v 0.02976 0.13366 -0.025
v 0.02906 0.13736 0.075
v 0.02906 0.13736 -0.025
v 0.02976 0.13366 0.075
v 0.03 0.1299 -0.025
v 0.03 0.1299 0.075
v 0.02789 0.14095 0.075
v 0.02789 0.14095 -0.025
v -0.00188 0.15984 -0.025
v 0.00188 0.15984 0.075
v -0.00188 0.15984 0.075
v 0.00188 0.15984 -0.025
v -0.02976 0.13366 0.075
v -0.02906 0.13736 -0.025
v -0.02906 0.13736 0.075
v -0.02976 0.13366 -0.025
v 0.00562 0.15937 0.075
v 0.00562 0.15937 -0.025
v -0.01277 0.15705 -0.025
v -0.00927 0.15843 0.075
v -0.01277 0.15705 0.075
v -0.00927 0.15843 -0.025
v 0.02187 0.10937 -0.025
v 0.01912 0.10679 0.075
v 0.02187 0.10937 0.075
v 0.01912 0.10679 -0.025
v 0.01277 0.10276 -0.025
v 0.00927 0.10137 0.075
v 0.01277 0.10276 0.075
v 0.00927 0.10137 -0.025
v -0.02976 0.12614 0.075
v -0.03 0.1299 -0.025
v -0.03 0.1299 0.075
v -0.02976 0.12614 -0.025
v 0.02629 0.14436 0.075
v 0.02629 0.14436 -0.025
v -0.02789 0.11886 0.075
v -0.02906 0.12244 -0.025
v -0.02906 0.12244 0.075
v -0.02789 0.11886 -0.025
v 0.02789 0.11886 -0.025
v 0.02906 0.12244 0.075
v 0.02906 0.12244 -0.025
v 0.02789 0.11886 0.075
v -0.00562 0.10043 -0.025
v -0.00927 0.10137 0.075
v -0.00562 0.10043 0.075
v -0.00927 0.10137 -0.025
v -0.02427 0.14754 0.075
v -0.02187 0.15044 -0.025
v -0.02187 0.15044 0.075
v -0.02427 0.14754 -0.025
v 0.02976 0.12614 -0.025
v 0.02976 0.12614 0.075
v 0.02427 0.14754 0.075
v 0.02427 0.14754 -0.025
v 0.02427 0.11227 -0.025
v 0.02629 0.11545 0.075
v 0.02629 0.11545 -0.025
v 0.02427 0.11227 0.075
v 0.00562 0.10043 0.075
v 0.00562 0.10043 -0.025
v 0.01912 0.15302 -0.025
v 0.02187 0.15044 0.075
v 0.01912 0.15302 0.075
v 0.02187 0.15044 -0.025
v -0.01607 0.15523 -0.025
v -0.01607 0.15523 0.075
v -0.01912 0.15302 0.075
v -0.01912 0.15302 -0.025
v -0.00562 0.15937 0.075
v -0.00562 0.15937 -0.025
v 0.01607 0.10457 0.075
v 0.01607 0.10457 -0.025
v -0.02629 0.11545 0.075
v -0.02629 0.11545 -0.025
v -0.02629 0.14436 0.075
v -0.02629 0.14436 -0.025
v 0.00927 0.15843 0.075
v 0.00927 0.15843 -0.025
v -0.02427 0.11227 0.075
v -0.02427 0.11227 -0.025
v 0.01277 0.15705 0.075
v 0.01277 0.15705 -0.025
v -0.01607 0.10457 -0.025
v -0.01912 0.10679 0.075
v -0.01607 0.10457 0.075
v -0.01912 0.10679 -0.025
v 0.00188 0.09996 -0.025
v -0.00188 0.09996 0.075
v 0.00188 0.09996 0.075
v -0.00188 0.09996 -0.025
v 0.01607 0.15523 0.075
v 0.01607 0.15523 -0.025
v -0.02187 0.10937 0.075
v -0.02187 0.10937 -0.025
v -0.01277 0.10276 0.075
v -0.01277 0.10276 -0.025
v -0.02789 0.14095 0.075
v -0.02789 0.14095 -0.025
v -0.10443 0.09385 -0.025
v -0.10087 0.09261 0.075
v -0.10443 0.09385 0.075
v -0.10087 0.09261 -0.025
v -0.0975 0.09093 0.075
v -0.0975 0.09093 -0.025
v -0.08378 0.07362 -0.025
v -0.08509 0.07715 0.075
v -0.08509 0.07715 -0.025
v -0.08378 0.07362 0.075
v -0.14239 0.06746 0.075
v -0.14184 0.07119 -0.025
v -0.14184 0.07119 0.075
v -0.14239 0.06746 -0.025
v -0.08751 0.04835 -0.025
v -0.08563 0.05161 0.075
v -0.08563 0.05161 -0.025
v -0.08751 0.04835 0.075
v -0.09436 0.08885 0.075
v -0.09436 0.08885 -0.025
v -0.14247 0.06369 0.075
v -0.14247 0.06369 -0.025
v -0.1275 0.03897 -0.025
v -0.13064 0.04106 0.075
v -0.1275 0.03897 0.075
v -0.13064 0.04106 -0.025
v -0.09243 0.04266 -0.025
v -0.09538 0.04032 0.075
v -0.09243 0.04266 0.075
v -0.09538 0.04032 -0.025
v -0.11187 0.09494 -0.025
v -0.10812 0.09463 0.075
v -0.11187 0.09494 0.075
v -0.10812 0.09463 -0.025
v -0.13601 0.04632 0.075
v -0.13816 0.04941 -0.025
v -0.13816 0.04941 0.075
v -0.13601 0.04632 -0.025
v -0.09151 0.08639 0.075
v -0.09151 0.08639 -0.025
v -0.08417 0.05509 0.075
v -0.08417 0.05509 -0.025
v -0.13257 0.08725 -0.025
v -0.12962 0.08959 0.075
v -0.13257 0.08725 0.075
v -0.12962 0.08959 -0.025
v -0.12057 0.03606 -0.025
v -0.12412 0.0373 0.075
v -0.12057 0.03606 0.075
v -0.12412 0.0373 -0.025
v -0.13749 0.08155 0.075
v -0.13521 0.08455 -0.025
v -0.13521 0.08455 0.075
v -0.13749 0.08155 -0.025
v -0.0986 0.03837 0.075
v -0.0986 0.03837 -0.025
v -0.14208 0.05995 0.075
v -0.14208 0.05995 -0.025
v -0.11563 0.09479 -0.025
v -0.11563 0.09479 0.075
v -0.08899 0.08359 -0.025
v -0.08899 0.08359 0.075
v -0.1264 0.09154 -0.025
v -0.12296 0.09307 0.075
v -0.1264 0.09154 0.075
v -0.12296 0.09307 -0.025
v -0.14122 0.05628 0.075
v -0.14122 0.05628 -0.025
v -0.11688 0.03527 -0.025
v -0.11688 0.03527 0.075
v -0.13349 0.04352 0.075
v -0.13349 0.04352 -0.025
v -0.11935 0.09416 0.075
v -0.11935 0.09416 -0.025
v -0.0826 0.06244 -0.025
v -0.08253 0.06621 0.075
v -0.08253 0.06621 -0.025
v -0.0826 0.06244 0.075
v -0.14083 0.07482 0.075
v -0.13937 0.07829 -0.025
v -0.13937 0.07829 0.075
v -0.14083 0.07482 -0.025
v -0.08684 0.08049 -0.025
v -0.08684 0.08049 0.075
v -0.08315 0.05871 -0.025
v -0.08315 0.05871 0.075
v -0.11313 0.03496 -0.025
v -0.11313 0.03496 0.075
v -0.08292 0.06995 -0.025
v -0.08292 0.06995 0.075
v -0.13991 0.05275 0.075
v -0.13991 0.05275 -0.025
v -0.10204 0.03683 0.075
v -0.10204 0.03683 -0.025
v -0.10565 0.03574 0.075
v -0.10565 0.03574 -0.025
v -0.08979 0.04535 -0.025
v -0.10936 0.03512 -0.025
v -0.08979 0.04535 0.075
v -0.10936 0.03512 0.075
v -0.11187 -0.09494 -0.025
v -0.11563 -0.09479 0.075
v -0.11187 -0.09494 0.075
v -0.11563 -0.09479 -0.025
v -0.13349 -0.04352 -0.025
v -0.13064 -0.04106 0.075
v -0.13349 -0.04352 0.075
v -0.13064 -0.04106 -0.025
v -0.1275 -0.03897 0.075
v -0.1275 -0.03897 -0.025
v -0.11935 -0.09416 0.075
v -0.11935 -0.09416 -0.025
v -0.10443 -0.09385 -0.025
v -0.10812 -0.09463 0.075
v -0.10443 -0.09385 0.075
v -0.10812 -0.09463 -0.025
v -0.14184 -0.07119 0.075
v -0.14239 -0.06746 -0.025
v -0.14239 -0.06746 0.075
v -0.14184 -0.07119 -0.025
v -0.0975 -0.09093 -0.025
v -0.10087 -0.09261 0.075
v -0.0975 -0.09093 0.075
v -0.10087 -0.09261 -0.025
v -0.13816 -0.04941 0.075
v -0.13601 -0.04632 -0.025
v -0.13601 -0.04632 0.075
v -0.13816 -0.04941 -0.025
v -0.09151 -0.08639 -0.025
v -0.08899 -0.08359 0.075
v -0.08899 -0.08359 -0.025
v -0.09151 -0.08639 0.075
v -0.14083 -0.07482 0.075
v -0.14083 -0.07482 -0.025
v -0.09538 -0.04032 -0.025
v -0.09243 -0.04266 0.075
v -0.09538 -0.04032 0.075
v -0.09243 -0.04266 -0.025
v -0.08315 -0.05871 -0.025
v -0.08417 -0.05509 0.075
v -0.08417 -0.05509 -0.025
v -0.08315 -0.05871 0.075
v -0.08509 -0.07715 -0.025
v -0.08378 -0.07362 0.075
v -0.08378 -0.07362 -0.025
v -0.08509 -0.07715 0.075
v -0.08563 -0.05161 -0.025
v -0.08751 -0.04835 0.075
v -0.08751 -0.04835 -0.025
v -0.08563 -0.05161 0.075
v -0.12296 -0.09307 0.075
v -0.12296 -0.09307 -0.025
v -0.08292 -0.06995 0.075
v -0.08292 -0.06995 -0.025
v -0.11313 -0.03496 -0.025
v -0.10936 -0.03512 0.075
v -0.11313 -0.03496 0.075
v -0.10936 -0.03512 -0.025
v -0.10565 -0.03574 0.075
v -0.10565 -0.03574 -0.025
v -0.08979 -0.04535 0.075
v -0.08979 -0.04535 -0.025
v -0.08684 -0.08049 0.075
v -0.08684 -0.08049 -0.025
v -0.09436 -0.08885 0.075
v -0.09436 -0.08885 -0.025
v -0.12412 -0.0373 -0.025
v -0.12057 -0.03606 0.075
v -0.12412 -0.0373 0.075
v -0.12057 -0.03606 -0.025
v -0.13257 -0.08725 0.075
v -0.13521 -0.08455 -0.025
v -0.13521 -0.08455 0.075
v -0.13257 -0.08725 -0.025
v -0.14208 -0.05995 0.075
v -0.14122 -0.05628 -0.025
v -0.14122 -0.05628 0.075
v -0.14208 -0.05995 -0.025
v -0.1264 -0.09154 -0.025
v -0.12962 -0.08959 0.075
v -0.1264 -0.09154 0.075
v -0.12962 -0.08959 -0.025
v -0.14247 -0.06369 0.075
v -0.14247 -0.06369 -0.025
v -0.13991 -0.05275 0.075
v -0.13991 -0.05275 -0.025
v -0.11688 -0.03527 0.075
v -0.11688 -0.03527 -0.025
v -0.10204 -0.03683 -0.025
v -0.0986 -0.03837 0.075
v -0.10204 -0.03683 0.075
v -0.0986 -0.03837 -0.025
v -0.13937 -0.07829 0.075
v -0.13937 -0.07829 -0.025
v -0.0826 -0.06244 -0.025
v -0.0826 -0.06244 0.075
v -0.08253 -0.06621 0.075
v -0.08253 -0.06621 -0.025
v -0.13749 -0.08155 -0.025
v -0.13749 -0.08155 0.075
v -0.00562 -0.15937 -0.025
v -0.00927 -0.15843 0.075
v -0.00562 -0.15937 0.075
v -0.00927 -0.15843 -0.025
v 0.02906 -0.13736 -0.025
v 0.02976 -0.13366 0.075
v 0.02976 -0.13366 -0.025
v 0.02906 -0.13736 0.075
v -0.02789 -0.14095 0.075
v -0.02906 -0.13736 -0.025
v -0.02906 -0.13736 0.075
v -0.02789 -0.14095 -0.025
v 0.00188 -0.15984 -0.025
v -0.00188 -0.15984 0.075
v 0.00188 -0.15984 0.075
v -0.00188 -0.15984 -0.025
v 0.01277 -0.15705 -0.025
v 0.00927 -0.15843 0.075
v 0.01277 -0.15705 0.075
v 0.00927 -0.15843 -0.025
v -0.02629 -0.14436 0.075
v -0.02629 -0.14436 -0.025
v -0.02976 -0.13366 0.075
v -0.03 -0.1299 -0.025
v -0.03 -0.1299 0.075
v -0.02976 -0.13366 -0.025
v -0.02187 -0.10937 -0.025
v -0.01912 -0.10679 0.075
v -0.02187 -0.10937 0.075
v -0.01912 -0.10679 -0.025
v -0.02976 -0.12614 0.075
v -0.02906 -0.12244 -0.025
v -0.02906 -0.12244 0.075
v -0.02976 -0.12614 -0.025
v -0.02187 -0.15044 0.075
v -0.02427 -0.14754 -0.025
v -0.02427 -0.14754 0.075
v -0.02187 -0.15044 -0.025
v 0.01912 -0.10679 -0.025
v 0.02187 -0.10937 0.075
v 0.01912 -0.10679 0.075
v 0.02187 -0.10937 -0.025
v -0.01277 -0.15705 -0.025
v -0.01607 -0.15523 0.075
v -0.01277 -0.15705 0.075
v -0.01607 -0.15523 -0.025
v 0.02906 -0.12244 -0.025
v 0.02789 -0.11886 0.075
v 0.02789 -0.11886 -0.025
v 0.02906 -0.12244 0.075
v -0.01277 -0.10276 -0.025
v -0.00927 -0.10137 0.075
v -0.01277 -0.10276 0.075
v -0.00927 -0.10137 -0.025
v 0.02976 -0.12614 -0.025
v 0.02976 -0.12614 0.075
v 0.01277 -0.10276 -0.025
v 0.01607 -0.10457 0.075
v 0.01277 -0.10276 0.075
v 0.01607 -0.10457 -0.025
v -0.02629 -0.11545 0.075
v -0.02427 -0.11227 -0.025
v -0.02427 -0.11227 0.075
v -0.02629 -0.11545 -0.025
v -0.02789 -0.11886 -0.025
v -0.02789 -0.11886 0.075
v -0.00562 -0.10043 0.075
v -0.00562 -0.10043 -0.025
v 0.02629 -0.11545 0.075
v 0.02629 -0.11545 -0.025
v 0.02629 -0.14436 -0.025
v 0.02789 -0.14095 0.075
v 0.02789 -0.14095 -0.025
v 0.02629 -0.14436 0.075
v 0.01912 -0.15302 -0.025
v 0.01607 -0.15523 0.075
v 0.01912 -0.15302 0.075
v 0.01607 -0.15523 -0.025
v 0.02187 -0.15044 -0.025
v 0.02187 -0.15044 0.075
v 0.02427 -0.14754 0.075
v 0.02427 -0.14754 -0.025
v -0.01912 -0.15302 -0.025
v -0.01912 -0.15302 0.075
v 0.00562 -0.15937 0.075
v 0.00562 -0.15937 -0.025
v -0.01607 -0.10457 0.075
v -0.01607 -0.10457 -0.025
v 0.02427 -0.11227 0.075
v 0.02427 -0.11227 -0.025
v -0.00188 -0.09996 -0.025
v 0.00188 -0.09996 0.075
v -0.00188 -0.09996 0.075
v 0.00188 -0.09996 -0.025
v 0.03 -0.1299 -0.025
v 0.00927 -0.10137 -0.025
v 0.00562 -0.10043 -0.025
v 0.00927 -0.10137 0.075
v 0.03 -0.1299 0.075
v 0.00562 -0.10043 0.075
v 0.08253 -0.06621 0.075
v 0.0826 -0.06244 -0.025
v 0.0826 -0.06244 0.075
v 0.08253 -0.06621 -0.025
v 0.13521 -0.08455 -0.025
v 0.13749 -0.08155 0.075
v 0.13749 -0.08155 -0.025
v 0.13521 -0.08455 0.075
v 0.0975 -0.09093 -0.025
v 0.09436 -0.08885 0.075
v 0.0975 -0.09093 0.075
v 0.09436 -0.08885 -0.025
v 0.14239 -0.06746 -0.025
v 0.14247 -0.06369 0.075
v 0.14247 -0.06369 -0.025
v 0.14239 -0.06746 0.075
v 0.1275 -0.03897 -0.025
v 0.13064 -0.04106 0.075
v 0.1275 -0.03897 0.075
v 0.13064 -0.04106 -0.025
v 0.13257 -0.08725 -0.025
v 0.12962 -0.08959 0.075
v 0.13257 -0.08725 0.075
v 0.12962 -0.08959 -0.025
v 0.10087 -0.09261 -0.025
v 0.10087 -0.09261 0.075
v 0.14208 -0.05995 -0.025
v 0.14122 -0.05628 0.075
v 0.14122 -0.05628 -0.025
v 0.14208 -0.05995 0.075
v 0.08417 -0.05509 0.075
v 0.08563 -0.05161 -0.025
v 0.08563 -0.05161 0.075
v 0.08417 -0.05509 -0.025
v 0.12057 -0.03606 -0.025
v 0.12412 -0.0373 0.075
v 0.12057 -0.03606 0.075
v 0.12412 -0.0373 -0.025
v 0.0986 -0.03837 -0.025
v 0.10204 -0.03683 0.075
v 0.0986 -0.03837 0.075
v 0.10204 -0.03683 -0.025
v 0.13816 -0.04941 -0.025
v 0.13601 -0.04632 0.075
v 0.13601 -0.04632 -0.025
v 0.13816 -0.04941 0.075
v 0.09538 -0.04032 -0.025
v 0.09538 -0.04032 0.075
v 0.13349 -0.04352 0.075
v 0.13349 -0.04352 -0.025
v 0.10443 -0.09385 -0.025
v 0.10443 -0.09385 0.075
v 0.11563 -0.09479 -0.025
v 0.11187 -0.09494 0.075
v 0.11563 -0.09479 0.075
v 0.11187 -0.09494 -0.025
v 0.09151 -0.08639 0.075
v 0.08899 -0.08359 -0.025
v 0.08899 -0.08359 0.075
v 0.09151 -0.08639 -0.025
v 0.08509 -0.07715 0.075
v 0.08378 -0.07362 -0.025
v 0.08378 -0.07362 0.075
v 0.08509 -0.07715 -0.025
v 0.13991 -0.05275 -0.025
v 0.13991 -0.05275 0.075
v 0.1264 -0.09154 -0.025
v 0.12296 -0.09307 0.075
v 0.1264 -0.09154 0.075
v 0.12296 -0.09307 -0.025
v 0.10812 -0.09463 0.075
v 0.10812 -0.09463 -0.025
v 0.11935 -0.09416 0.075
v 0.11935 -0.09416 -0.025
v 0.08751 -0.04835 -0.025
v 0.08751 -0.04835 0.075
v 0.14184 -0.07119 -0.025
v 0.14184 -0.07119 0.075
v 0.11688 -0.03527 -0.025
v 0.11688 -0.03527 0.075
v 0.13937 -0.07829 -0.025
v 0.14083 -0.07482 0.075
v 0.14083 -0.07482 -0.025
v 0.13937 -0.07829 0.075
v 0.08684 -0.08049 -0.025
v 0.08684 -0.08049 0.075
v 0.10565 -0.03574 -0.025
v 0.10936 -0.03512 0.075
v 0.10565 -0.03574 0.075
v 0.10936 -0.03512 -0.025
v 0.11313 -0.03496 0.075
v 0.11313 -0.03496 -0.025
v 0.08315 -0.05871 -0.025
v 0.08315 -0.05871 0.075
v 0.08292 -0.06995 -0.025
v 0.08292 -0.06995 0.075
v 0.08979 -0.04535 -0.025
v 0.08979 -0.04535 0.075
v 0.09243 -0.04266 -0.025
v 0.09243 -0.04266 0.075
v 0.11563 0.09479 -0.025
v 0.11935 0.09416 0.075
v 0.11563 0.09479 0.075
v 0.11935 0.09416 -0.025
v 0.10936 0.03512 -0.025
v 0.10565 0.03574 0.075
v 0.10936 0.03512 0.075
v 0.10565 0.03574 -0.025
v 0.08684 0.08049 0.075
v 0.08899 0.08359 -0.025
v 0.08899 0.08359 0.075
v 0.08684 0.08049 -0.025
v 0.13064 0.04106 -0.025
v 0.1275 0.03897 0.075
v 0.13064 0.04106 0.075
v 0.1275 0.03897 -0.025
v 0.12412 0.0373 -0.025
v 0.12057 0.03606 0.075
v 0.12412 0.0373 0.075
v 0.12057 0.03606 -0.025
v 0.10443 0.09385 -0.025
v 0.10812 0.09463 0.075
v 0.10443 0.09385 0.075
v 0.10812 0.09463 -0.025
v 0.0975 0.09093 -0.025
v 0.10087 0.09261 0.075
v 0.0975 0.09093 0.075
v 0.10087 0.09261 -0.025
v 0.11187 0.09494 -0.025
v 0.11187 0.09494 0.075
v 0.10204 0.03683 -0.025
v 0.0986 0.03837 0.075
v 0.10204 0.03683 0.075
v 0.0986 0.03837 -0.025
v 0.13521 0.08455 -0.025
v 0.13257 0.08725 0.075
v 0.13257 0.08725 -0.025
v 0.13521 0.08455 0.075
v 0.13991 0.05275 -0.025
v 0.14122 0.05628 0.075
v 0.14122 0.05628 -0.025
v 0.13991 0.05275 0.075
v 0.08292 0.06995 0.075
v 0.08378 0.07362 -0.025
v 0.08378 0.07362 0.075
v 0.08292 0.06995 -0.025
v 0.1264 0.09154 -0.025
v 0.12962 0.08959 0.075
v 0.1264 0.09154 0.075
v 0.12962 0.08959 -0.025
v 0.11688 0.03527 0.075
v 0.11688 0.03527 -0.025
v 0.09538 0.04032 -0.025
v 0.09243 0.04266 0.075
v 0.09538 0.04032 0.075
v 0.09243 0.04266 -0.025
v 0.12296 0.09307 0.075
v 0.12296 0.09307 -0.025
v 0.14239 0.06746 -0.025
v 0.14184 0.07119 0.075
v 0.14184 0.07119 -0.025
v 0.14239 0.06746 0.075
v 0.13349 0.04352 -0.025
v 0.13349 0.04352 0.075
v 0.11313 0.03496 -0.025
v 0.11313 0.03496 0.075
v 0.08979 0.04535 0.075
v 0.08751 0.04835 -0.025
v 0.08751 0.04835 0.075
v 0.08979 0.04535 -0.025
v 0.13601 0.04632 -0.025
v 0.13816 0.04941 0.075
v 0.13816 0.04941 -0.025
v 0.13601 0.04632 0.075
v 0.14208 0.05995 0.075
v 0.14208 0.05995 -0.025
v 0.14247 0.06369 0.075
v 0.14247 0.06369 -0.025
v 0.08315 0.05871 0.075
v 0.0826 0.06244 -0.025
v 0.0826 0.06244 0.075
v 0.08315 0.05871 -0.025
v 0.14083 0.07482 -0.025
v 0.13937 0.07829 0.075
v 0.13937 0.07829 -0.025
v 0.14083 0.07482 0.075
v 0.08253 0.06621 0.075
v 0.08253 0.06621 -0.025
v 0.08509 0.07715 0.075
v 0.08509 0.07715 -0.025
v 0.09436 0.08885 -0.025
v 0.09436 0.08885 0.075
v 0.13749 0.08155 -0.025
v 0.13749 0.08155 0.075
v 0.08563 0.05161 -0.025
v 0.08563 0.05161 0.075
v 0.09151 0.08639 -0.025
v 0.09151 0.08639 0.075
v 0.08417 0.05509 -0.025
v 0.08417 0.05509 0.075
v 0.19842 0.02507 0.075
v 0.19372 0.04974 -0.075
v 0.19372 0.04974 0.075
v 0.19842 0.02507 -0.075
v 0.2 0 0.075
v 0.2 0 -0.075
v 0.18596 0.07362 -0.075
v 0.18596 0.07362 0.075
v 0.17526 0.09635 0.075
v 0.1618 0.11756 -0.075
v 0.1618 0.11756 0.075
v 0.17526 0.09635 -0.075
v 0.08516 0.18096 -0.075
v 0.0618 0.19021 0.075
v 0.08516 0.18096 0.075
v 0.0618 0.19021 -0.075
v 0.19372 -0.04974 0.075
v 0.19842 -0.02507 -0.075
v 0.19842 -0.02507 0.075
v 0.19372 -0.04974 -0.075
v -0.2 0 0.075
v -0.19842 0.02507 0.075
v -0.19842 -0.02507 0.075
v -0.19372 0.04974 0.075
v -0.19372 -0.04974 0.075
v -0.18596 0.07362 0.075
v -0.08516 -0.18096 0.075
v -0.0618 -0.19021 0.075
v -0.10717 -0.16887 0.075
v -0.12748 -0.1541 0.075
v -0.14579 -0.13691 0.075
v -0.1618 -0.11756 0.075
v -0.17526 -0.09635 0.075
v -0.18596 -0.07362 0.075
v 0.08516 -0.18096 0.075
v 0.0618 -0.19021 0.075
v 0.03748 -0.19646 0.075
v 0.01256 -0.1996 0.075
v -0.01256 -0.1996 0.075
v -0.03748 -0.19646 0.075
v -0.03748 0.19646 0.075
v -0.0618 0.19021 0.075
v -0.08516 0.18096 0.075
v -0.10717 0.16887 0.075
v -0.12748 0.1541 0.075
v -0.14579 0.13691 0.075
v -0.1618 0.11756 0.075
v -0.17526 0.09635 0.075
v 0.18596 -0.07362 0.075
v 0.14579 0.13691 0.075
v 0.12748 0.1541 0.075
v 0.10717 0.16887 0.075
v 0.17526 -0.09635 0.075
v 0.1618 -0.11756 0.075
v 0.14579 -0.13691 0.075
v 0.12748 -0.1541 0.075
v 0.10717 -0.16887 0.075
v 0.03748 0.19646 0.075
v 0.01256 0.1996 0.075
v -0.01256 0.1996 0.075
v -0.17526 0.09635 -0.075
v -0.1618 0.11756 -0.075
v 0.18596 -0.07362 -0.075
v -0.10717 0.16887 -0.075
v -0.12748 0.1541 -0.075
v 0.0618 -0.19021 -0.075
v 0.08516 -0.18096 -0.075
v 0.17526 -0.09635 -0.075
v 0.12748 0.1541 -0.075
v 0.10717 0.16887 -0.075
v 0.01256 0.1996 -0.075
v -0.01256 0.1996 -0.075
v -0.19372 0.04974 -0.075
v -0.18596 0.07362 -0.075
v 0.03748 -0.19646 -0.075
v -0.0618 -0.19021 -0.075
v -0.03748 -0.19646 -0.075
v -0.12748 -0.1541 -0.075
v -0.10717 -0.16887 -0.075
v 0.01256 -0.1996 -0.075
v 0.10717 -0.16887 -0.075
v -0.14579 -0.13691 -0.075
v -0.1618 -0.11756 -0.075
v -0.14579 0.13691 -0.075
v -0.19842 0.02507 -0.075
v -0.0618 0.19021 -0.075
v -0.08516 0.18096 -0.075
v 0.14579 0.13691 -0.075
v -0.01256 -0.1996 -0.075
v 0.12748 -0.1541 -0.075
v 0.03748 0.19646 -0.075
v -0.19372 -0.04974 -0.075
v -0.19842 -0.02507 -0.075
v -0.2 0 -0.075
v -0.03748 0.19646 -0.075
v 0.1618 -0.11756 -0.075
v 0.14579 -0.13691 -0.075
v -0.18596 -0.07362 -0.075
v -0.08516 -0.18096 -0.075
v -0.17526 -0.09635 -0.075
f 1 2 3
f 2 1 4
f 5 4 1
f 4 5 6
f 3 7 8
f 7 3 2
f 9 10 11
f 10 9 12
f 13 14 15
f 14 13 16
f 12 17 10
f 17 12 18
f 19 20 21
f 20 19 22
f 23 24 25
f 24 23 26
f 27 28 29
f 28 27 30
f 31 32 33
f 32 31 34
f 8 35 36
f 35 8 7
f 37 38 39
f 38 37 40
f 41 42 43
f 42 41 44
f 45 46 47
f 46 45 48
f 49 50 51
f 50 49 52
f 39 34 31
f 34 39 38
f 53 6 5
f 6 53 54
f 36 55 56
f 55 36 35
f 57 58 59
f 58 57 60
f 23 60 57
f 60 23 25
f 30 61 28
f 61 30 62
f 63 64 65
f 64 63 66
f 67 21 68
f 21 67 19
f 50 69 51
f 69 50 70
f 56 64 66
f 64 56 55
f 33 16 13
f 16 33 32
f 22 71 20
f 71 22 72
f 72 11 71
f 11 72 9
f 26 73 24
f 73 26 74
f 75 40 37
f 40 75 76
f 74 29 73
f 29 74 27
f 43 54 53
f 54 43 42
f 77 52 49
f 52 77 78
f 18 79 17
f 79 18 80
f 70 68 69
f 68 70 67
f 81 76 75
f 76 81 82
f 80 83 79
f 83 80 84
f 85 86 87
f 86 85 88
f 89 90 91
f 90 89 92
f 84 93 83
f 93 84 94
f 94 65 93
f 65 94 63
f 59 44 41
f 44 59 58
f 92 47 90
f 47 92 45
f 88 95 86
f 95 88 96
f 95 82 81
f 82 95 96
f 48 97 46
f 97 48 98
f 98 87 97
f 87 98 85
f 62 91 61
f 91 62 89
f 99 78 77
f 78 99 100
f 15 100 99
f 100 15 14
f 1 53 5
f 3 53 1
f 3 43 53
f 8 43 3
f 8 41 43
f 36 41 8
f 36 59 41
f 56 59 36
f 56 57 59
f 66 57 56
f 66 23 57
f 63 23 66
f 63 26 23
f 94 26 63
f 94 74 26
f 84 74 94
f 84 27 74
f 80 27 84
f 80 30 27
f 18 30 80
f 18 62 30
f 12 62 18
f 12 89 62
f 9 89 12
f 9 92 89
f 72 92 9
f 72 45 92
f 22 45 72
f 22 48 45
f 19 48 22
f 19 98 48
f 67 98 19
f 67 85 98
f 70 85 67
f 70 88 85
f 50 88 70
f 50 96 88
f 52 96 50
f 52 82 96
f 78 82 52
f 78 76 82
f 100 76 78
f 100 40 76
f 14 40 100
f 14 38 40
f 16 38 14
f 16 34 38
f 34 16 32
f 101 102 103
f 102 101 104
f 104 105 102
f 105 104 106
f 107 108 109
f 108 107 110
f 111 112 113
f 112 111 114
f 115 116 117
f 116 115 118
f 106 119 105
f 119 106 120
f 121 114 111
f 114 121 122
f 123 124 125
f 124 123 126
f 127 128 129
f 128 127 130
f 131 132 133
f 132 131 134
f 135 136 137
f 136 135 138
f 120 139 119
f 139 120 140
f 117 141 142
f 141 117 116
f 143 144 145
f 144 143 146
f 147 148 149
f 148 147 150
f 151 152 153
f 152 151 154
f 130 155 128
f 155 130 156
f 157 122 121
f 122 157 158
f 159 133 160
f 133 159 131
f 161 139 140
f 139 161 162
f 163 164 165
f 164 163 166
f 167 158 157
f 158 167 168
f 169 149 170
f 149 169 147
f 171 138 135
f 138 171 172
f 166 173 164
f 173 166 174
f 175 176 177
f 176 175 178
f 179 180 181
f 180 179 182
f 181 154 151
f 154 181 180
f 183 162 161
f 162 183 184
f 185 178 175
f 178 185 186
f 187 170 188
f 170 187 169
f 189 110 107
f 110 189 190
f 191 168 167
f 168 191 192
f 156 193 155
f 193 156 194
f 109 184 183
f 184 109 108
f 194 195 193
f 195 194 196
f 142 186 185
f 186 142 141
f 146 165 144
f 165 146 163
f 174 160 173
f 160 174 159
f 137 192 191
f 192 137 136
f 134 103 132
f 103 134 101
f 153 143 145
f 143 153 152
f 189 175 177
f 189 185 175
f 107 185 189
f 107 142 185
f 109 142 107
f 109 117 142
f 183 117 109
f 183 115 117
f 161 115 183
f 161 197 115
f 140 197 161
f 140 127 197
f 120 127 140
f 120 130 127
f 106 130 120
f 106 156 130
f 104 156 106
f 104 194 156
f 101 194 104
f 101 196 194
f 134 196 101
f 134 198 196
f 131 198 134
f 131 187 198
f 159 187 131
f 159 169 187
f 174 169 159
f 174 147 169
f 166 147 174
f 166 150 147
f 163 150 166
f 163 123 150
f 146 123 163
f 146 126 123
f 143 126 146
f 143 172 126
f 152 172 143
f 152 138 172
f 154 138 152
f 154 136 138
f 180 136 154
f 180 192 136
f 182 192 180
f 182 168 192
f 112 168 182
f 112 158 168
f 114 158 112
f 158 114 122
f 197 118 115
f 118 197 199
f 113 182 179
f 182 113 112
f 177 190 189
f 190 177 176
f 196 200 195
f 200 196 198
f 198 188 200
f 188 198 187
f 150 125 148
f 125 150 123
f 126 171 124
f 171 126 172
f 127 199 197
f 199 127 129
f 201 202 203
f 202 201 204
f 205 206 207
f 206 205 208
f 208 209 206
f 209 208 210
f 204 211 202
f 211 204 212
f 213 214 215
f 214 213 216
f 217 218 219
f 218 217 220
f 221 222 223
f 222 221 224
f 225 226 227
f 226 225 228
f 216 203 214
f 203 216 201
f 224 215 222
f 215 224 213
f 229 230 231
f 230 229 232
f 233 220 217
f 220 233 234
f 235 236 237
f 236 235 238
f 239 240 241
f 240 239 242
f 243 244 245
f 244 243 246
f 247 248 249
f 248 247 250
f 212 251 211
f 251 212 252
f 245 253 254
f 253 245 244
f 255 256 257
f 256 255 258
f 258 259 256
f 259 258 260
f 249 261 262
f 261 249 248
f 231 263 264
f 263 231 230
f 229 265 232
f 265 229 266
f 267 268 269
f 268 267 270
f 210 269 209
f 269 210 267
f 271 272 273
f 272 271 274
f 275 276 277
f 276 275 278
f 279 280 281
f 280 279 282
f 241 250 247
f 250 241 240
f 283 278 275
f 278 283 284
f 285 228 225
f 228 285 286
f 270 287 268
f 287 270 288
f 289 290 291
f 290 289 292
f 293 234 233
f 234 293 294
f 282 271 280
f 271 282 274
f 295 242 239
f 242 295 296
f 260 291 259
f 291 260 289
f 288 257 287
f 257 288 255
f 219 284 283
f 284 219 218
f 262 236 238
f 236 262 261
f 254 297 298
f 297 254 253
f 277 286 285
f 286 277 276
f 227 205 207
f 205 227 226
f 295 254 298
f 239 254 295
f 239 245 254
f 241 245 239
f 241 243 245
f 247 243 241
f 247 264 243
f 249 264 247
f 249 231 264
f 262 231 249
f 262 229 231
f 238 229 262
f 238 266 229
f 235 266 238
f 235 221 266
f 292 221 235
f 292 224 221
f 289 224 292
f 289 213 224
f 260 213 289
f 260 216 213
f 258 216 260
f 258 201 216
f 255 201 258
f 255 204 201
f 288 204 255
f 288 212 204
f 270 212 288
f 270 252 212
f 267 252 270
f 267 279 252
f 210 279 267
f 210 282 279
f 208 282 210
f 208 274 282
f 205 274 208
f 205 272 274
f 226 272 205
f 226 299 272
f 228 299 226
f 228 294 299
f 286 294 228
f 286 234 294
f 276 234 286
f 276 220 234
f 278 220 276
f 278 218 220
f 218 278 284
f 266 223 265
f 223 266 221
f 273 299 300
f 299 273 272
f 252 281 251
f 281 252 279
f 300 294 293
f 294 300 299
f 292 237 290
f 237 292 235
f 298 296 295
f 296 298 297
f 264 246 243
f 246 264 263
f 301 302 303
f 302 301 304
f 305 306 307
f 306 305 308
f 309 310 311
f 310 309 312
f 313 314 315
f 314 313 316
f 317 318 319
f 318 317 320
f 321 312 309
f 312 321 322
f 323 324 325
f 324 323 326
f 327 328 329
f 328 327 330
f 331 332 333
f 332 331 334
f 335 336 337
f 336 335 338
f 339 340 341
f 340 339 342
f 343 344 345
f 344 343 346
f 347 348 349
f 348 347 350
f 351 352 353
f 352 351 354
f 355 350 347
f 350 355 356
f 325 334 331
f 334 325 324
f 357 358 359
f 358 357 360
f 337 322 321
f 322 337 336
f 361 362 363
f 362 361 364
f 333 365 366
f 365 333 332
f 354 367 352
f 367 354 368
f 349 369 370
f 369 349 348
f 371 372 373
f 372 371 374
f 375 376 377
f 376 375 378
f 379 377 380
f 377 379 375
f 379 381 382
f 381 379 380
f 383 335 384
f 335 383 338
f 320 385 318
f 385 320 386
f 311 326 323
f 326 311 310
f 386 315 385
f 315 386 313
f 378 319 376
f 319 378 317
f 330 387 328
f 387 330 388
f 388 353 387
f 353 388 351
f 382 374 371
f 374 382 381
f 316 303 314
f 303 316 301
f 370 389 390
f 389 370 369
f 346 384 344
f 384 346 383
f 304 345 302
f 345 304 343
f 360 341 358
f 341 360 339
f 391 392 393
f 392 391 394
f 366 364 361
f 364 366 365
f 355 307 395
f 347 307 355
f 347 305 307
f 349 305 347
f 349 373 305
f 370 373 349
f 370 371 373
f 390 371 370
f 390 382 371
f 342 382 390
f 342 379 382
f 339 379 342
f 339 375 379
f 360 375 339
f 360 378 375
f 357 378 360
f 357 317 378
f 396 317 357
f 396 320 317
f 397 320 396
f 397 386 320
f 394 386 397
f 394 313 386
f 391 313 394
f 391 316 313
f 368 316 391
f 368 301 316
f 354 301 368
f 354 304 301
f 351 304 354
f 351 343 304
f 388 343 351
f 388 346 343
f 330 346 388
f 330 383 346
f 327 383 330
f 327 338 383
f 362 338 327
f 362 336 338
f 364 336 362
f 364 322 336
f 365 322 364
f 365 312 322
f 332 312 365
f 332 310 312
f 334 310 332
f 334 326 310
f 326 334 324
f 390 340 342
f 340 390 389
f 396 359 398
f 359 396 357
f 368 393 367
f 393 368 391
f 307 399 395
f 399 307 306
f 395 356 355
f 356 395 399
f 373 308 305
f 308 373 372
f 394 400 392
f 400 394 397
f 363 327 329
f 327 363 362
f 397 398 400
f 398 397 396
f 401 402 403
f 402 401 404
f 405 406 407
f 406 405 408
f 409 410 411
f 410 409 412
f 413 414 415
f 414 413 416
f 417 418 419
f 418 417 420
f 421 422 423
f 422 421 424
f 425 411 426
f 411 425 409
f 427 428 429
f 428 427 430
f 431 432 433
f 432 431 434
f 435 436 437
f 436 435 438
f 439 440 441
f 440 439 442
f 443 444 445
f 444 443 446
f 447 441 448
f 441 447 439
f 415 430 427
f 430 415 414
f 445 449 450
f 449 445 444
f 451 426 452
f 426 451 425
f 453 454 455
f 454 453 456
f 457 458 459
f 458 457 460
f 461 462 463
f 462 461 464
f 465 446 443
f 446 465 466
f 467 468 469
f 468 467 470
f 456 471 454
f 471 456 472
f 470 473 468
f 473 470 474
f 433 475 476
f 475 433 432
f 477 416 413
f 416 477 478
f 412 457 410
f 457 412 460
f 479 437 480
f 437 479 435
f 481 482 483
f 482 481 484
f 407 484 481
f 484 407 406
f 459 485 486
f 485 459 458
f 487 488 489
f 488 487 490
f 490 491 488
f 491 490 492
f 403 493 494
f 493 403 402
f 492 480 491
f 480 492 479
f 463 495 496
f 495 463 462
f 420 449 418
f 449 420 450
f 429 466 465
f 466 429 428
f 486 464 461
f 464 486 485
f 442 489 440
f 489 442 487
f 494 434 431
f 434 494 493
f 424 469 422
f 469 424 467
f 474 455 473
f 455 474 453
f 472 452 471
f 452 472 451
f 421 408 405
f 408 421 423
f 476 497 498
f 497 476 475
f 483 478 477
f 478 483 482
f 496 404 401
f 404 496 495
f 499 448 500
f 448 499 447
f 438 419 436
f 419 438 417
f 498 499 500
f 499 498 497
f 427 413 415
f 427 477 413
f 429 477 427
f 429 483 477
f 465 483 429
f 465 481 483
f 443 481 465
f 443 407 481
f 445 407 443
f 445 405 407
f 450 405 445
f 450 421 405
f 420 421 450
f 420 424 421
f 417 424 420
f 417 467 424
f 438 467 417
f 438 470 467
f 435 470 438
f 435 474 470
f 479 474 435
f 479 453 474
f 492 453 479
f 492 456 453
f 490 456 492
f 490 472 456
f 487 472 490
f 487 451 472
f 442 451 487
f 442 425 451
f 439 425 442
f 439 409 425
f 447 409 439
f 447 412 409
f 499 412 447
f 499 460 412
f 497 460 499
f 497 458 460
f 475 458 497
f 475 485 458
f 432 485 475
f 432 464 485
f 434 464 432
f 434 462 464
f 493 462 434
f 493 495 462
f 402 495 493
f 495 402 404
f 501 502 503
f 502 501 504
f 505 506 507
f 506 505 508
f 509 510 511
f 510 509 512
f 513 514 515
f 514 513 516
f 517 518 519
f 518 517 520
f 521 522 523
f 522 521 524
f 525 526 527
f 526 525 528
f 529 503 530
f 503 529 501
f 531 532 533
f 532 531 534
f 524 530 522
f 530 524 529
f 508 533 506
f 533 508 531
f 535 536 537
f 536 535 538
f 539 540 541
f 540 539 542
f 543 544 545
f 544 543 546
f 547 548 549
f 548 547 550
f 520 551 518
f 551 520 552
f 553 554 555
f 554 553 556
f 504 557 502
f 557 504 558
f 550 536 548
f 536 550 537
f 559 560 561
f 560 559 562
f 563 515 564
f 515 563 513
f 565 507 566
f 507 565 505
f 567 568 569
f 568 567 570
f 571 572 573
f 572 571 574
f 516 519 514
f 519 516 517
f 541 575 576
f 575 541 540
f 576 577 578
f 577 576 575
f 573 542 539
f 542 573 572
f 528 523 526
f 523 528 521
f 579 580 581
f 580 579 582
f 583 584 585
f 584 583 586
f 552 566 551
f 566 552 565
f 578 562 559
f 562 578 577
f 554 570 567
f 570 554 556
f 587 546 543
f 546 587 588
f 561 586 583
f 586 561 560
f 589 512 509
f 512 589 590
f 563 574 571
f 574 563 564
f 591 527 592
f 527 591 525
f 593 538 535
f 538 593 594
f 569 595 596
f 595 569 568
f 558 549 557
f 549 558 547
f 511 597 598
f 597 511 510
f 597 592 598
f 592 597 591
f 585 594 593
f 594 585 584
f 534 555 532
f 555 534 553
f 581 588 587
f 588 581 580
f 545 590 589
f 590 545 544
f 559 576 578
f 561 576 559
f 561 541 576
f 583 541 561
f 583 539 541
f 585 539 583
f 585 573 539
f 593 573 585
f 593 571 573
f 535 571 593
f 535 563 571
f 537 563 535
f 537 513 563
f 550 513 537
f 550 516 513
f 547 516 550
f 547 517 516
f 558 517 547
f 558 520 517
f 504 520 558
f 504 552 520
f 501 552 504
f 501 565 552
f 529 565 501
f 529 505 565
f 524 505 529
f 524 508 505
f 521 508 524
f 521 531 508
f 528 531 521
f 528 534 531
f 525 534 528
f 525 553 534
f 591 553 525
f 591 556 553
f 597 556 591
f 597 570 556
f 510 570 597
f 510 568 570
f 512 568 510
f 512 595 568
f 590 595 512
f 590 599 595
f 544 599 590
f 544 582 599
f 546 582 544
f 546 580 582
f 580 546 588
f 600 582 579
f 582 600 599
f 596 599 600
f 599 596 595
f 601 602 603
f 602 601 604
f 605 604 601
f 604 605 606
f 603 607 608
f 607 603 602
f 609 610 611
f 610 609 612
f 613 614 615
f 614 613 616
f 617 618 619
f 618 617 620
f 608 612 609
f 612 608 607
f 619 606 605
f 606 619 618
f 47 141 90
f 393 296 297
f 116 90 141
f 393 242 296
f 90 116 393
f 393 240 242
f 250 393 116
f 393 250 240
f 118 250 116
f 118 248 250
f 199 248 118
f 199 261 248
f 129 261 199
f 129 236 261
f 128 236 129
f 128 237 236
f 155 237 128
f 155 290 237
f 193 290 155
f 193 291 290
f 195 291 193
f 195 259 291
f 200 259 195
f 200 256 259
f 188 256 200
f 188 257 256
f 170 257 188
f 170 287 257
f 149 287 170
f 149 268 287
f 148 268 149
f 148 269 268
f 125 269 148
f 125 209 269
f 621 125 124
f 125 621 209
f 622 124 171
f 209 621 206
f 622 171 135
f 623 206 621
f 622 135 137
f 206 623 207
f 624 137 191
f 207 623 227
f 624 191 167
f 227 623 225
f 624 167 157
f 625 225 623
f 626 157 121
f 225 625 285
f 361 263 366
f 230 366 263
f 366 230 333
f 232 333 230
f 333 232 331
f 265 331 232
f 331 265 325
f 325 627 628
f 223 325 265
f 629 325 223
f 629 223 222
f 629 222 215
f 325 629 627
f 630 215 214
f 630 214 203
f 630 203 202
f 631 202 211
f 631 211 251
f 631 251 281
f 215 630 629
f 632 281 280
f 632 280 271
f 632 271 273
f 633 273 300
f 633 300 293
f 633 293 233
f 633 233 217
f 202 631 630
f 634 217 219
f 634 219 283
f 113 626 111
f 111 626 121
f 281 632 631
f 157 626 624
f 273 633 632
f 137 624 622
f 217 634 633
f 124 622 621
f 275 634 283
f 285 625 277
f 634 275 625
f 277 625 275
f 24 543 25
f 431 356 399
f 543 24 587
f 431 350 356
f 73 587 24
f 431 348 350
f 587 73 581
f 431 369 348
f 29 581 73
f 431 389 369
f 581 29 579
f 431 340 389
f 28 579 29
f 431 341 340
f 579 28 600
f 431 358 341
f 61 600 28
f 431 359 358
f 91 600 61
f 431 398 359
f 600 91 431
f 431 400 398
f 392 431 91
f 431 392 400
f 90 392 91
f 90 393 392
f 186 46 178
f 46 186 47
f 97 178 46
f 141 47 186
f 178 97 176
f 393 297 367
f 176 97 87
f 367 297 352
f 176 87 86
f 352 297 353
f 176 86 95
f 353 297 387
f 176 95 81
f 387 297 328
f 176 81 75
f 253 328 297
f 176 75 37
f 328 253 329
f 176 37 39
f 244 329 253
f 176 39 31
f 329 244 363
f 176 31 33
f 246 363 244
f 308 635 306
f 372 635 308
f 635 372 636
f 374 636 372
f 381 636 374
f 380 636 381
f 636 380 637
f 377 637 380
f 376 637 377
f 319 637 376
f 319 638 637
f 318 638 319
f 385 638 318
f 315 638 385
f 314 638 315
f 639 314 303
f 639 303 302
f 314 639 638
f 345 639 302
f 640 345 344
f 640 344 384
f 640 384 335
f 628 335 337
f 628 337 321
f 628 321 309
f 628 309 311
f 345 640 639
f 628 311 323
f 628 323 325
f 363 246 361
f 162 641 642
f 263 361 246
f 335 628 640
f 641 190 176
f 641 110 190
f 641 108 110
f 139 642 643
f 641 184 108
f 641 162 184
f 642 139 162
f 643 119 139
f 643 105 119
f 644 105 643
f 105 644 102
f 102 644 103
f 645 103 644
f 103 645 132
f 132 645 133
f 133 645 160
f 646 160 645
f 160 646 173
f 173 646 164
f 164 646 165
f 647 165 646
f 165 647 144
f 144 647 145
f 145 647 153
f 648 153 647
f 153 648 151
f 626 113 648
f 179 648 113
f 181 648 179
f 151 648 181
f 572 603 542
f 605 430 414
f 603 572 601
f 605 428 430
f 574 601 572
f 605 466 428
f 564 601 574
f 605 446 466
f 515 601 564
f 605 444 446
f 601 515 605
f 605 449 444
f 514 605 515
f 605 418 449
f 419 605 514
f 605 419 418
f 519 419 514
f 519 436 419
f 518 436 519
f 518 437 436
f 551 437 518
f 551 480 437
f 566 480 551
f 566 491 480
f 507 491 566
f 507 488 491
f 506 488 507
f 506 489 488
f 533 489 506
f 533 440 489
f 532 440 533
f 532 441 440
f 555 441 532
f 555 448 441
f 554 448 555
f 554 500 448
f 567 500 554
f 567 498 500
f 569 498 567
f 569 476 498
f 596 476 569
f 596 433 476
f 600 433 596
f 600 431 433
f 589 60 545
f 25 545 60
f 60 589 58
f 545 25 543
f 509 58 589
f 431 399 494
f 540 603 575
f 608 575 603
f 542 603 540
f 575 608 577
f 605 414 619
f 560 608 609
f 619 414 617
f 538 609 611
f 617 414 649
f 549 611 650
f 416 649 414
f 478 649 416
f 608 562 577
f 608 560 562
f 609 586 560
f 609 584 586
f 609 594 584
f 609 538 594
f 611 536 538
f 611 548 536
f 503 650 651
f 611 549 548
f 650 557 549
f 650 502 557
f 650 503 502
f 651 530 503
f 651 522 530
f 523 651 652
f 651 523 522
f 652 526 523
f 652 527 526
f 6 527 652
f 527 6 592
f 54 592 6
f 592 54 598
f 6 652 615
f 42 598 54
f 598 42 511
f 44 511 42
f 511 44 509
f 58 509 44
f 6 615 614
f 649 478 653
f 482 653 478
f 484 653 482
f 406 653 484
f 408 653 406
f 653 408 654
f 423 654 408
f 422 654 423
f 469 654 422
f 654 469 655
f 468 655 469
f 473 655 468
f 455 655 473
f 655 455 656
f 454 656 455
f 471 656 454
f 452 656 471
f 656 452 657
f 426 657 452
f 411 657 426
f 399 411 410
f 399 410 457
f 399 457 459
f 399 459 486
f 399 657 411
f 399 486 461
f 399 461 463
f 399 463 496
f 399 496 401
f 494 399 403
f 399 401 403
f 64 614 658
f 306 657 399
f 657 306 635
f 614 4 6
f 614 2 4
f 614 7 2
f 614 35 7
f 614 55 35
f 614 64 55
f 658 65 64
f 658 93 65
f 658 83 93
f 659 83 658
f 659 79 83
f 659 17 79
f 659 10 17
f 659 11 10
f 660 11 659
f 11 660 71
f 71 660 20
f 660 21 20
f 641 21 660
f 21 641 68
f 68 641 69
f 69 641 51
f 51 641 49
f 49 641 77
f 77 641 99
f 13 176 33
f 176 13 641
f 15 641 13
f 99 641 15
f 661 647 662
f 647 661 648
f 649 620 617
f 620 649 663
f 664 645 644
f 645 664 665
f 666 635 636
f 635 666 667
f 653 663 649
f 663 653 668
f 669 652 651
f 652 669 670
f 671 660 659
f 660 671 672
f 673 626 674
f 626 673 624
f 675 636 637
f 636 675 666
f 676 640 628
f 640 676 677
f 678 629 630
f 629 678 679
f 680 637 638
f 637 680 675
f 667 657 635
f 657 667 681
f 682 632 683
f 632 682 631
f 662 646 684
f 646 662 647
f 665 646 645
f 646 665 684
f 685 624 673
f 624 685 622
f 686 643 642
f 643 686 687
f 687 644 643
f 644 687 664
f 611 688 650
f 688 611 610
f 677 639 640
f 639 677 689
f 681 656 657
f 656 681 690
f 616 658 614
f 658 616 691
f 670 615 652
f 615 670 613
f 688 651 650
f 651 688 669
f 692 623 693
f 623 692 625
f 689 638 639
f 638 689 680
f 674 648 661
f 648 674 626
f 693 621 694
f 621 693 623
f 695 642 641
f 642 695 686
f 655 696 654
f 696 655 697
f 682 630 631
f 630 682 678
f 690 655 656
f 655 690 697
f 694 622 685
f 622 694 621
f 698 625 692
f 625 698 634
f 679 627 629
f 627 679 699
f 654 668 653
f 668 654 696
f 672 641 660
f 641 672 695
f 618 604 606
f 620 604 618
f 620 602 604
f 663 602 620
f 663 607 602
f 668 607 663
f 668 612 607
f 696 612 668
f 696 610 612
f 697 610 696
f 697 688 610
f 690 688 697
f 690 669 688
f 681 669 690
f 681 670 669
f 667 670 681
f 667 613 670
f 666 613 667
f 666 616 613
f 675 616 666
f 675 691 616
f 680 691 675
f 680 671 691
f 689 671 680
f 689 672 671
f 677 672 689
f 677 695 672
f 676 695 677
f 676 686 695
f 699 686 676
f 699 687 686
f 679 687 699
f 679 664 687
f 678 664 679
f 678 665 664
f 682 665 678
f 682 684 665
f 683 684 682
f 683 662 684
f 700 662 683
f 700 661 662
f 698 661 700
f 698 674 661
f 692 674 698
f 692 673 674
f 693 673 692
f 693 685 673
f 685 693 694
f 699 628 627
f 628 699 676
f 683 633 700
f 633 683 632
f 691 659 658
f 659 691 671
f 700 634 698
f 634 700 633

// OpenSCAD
union(){

difference(){
   
cylinder(h=0.15,r=0.2,center=true,$fn=50);

for (i = [1:6]){

    rotate([0,0,(i-1)*60])
    translate([0,cos(30)*(0.15),0.15/2])
    cylinder(h=0.2,r=0.03, center = true, $fn=50); 
}
    
} 
}
